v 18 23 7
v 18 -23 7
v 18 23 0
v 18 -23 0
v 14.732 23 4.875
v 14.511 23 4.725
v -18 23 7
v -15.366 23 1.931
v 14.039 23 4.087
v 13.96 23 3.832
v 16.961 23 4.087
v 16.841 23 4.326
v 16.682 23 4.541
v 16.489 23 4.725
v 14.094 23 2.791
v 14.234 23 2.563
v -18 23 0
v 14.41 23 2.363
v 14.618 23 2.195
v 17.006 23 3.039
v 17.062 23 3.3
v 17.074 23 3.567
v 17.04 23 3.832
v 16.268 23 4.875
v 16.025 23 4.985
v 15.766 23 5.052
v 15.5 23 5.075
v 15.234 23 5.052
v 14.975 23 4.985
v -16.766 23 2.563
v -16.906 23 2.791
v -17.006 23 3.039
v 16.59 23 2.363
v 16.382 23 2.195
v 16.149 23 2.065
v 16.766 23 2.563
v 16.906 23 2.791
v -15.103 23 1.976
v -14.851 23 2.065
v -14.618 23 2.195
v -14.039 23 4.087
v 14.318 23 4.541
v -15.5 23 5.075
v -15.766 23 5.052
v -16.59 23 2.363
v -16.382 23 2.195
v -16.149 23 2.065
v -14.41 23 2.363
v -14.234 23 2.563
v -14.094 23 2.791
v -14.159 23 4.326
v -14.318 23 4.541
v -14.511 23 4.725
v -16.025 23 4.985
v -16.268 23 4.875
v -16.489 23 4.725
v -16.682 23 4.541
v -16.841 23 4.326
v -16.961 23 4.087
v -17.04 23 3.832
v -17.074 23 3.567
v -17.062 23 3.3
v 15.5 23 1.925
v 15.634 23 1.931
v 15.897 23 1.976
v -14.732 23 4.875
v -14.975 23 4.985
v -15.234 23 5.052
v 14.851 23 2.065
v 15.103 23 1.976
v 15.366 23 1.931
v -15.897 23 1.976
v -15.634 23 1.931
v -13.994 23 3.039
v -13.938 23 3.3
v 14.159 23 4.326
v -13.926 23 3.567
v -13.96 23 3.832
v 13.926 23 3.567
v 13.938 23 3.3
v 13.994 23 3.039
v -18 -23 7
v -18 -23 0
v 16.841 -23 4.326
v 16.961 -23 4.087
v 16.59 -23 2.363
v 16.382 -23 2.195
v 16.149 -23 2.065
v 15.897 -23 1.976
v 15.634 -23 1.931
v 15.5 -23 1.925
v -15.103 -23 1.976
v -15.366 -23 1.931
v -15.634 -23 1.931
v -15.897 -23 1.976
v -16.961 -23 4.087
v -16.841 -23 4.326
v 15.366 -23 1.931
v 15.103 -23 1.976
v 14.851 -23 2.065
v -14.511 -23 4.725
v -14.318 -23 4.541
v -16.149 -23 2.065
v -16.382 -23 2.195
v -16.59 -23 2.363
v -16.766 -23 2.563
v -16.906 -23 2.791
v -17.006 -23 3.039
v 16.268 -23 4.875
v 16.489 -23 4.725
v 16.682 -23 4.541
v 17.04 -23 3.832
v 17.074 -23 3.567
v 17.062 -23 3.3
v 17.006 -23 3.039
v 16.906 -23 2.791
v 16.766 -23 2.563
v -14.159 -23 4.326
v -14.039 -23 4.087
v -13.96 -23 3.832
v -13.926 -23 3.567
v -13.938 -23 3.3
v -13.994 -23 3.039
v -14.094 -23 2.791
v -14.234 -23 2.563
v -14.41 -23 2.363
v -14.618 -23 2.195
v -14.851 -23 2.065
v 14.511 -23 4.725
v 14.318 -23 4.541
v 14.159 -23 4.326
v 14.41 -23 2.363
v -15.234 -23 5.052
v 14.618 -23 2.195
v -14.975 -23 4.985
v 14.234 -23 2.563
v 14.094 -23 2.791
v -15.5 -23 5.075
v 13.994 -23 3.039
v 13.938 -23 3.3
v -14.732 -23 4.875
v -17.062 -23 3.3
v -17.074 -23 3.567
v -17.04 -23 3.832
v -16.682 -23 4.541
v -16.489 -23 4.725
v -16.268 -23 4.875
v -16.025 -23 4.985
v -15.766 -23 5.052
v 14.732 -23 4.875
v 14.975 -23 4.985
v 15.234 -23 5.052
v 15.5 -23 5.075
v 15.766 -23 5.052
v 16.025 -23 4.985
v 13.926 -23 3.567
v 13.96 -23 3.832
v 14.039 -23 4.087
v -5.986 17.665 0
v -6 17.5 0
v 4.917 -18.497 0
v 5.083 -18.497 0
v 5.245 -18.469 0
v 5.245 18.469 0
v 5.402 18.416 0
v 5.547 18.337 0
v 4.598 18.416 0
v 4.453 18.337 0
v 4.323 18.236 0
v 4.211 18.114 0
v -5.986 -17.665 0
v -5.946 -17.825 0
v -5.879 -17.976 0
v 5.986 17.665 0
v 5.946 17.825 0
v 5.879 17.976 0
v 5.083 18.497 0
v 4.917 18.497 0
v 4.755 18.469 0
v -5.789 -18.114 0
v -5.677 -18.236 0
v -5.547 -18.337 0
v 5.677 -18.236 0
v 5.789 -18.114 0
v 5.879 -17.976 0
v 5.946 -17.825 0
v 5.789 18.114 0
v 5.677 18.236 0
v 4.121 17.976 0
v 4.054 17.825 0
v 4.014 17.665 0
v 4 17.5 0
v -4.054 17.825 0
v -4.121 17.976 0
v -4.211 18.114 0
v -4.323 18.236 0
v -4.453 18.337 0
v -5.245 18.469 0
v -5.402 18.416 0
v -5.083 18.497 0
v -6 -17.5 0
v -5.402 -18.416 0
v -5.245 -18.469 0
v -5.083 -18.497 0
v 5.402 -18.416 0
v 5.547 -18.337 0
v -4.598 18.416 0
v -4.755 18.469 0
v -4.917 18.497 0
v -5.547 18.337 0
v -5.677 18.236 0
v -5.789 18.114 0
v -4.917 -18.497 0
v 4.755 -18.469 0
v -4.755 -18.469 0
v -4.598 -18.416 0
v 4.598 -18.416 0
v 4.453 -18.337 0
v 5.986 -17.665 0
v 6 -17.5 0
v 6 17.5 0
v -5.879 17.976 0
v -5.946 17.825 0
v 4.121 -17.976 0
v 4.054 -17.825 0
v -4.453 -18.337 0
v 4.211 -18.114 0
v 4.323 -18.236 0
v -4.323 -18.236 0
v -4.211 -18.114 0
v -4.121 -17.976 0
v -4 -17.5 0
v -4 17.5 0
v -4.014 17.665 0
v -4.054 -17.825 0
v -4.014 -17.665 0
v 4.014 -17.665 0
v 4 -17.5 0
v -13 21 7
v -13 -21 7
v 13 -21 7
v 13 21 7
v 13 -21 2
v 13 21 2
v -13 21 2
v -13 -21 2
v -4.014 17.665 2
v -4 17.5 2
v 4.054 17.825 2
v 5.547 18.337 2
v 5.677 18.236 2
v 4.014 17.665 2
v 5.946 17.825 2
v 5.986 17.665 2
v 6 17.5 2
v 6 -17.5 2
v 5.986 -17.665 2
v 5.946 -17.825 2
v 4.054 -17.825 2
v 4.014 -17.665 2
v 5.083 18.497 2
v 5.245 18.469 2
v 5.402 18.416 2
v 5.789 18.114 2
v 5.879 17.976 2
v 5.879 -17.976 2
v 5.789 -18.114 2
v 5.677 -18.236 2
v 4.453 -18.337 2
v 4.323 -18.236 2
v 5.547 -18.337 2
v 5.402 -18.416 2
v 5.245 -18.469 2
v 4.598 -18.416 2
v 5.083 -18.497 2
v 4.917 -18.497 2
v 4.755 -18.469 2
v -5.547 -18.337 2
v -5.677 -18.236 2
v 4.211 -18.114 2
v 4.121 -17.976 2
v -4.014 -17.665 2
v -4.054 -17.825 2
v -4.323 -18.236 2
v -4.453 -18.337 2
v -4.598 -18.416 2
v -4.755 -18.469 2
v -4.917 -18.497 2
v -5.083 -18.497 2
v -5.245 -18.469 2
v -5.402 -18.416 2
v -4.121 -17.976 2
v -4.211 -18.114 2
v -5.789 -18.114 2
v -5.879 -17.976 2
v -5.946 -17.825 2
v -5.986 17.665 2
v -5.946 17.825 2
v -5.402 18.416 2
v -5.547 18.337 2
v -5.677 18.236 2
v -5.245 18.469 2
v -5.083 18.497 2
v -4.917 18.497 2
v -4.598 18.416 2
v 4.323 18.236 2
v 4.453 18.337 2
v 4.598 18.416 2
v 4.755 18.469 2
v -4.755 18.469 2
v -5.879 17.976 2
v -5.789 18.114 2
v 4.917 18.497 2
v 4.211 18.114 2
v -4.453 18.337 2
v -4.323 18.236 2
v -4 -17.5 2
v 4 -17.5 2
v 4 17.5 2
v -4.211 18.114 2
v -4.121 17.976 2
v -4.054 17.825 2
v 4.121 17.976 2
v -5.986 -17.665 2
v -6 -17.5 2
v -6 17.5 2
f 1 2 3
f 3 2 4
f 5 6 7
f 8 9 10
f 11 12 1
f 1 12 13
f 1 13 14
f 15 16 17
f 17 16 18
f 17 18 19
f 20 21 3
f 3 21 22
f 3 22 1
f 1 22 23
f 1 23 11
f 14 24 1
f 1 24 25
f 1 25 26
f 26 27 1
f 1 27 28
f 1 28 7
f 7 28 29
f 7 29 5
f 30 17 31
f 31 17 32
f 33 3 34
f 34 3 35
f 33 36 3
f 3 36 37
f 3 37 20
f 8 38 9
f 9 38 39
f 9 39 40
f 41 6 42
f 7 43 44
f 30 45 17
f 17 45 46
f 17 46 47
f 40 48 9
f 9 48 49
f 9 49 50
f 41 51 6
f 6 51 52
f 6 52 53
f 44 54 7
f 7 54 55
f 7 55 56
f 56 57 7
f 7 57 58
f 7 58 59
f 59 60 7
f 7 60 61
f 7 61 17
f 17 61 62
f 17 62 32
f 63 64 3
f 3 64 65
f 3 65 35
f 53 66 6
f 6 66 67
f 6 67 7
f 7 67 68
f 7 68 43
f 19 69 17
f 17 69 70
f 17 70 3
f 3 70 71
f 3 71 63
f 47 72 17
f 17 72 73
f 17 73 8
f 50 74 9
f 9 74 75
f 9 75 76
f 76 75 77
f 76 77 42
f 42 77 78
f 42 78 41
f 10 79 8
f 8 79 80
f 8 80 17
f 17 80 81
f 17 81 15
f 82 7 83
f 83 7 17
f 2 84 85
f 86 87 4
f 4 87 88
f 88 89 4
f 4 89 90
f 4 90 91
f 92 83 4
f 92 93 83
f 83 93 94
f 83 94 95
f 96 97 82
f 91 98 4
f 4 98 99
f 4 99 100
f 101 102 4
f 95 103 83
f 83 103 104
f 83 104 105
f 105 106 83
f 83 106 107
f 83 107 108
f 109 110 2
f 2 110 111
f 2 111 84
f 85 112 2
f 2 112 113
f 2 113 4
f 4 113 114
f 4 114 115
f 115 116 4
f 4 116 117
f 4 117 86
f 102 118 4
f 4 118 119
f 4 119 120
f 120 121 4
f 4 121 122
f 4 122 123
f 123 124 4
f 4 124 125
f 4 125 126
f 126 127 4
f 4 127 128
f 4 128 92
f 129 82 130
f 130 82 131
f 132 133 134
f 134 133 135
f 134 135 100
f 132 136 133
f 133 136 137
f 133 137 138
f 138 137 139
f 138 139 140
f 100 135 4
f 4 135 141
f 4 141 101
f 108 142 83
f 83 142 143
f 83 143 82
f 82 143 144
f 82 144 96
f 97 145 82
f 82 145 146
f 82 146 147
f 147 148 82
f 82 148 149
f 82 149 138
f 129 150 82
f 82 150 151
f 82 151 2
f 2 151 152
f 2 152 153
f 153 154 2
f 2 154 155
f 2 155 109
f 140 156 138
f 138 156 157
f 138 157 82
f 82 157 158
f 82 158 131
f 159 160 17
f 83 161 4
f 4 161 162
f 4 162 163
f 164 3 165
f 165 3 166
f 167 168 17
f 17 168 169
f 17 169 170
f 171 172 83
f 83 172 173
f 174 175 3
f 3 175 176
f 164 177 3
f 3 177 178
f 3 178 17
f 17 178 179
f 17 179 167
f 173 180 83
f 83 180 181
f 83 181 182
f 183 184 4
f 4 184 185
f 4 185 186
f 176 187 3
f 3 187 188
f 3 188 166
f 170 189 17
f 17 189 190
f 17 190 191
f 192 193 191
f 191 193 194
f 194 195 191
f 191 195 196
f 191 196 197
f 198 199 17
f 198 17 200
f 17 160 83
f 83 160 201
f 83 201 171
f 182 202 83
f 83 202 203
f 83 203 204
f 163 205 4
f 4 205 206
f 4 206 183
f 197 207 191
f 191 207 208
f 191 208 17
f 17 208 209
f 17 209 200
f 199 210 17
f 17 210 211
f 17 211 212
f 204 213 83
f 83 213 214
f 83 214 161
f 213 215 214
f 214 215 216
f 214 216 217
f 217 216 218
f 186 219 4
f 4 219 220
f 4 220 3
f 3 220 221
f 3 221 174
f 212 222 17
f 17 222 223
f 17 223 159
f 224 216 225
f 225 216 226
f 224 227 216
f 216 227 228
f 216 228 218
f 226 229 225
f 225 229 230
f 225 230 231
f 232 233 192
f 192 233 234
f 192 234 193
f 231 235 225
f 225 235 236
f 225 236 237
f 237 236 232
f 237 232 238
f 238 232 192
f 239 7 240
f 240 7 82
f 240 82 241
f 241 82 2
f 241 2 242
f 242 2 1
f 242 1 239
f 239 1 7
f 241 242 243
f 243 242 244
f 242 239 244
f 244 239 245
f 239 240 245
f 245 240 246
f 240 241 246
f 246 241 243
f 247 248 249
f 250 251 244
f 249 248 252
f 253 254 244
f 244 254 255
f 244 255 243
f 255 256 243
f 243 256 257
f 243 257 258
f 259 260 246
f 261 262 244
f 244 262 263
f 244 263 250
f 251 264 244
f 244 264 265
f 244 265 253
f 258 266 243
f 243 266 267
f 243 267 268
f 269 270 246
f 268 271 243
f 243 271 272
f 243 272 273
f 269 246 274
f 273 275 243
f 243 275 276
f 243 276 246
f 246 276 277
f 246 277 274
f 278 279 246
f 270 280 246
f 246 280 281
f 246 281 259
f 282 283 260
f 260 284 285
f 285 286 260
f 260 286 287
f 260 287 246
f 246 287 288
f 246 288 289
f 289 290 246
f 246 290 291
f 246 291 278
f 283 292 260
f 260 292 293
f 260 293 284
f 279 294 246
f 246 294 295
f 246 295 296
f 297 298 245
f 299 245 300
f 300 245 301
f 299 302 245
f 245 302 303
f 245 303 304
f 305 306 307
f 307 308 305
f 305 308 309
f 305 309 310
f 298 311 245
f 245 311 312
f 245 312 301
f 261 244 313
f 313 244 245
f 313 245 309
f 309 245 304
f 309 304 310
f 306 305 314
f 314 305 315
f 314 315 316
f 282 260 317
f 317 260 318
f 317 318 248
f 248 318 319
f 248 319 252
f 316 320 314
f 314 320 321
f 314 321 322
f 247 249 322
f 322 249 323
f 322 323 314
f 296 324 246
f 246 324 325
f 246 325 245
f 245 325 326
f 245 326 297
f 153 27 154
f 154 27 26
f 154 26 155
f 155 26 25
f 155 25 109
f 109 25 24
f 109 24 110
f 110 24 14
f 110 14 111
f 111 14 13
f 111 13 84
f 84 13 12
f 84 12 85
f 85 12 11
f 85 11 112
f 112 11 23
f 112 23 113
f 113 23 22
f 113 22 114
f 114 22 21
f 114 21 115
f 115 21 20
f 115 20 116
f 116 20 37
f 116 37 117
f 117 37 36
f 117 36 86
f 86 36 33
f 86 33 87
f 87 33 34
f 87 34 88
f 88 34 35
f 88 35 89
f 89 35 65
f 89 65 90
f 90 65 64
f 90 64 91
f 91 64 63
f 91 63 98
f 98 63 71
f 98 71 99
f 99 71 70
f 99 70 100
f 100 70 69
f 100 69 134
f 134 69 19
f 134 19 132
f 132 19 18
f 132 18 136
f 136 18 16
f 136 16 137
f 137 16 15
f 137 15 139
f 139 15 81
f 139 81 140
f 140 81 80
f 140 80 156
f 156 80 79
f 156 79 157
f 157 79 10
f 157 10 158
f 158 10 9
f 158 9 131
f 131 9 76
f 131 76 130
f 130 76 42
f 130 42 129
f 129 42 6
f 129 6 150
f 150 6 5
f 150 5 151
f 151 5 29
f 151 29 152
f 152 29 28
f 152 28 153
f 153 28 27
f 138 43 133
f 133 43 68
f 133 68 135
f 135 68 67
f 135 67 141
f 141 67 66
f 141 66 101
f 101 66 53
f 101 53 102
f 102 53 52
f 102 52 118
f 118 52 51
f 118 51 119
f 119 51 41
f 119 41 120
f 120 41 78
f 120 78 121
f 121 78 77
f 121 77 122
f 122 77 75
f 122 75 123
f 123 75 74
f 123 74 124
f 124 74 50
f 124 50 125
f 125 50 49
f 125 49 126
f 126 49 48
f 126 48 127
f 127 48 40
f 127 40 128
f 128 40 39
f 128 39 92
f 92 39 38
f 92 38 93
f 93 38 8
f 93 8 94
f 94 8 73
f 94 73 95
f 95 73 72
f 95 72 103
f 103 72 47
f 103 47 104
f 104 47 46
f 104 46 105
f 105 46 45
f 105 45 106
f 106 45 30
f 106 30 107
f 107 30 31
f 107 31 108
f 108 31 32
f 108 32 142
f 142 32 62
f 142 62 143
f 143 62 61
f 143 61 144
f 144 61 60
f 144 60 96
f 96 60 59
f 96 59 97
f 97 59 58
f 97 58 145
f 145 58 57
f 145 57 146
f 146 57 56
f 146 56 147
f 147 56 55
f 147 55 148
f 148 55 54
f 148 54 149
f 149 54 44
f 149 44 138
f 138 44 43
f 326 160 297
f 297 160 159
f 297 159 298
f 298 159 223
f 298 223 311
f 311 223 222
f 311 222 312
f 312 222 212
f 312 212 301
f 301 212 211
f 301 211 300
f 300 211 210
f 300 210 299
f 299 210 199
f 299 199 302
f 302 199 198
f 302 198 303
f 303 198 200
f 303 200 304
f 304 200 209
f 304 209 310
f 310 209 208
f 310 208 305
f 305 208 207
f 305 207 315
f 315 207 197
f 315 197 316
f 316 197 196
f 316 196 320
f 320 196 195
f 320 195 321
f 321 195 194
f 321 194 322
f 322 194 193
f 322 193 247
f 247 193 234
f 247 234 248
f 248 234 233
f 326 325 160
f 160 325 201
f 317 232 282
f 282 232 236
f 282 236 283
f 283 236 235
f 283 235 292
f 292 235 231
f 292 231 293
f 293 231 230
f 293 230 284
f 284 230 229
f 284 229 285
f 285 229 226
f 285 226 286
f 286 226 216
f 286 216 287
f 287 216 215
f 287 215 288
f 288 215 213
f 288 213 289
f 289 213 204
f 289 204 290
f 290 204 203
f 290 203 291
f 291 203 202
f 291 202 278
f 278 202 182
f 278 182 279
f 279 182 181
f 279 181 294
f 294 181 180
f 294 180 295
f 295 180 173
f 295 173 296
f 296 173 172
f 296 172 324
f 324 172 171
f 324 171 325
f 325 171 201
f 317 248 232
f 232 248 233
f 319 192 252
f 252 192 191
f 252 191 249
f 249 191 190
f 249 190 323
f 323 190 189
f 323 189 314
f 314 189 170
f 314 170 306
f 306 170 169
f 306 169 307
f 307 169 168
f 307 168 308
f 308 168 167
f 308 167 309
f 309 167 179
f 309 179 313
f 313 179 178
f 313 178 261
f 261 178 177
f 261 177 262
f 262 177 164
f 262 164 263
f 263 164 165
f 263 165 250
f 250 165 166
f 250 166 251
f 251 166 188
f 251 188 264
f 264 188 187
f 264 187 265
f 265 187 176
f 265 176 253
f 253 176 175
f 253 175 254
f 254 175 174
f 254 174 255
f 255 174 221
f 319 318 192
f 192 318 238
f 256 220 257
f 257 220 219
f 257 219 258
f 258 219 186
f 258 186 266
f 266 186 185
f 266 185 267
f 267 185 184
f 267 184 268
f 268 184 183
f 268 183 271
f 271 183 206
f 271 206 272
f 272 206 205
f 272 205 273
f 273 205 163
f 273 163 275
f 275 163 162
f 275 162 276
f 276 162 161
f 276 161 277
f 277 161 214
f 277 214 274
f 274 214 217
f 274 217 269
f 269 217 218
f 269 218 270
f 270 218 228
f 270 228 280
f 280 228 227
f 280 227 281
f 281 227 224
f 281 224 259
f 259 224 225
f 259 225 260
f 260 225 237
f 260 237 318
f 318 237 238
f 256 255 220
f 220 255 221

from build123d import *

# Parameters (mm, degrees)
SKETCH1_W           = 36
SKETCH1_H           = 46
BOSS_EXTRUDE1_DEPTH = 2
SKETCH2_W           = 36
SKETCH2_H           = 46
SKETCH2_W_2         = 26
SKETCH2_H_2         = 42
BOSS_EXTRUDE2_DEPTH = 5
SKETCH3_R           = 1.575
CUT_EXTRUDE1_DEPTH  = 50.889878733
CUT_EXTRUDE2_DEPTH  = 2


with BuildPart() as part:
    # Sketch1 → Boss-Extrude1 (new body)
    with BuildSketch(Plane.XY):
        Rectangle(SKETCH1_W, SKETCH1_H)
    extrude(amount=BOSS_EXTRUDE1_DEPTH)

    # Sketch2 → Boss-Extrude2 (add)
    with BuildSketch(Plane.XY.offset(2)):
        Rectangle(SKETCH2_W, SKETCH2_H)
        Rectangle(SKETCH2_W_2, SKETCH2_H_2, mode=Mode.SUBTRACT)
    extrude(amount=BOSS_EXTRUDE2_DEPTH)

    # Sketch3 → Cut-Extrude1 (cut, through all)
    with BuildSketch(Plane(origin=(0, 23, 0), x_dir=(1, 0, 0), z_dir=(0, 1, 0))):
        with Locations(Location((-15.5, -3.5, 0), (0, 0, 270))):
            Circle(SKETCH3_R)
        with Locations(Location((15.5, -3.5, 0), (0, 0, 90))):
            Circle(SKETCH3_R)
    extrude(amount=-CUT_EXTRUDE1_DEPTH, mode=Mode.SUBTRACT)

    # Sketch4 → Cut-Extrude2 (cut)
    with BuildSketch(Plane(origin=(0, 0, 0), x_dir=(-1, 0, 0), z_dir=(0, 0, -1))):
        with BuildLine():
            Line((-4, 17.5), (-4, -17.5))
            ThreePointArc((-4, -17.5), (-5, -18.5), (-6, -17.5))
            Line((-6, -17.5), (-6, 17.5))
            ThreePointArc((-6, 17.5), (-5, 18.5), (-4, 17.5))
        make_face()
        with BuildLine():
            Line((4, 17.5), (4, -17.5))
            ThreePointArc((4, -17.5), (5, -18.5), (6, -17.5))
            Line((6, -17.5), (6, 17.5))
            ThreePointArc((6, 17.5), (5, 18.5), (4, 17.5))
        make_face()
    extrude(amount=-CUT_EXTRUDE2_DEPTH, mode=Mode.SUBTRACT)


solid = part.part
